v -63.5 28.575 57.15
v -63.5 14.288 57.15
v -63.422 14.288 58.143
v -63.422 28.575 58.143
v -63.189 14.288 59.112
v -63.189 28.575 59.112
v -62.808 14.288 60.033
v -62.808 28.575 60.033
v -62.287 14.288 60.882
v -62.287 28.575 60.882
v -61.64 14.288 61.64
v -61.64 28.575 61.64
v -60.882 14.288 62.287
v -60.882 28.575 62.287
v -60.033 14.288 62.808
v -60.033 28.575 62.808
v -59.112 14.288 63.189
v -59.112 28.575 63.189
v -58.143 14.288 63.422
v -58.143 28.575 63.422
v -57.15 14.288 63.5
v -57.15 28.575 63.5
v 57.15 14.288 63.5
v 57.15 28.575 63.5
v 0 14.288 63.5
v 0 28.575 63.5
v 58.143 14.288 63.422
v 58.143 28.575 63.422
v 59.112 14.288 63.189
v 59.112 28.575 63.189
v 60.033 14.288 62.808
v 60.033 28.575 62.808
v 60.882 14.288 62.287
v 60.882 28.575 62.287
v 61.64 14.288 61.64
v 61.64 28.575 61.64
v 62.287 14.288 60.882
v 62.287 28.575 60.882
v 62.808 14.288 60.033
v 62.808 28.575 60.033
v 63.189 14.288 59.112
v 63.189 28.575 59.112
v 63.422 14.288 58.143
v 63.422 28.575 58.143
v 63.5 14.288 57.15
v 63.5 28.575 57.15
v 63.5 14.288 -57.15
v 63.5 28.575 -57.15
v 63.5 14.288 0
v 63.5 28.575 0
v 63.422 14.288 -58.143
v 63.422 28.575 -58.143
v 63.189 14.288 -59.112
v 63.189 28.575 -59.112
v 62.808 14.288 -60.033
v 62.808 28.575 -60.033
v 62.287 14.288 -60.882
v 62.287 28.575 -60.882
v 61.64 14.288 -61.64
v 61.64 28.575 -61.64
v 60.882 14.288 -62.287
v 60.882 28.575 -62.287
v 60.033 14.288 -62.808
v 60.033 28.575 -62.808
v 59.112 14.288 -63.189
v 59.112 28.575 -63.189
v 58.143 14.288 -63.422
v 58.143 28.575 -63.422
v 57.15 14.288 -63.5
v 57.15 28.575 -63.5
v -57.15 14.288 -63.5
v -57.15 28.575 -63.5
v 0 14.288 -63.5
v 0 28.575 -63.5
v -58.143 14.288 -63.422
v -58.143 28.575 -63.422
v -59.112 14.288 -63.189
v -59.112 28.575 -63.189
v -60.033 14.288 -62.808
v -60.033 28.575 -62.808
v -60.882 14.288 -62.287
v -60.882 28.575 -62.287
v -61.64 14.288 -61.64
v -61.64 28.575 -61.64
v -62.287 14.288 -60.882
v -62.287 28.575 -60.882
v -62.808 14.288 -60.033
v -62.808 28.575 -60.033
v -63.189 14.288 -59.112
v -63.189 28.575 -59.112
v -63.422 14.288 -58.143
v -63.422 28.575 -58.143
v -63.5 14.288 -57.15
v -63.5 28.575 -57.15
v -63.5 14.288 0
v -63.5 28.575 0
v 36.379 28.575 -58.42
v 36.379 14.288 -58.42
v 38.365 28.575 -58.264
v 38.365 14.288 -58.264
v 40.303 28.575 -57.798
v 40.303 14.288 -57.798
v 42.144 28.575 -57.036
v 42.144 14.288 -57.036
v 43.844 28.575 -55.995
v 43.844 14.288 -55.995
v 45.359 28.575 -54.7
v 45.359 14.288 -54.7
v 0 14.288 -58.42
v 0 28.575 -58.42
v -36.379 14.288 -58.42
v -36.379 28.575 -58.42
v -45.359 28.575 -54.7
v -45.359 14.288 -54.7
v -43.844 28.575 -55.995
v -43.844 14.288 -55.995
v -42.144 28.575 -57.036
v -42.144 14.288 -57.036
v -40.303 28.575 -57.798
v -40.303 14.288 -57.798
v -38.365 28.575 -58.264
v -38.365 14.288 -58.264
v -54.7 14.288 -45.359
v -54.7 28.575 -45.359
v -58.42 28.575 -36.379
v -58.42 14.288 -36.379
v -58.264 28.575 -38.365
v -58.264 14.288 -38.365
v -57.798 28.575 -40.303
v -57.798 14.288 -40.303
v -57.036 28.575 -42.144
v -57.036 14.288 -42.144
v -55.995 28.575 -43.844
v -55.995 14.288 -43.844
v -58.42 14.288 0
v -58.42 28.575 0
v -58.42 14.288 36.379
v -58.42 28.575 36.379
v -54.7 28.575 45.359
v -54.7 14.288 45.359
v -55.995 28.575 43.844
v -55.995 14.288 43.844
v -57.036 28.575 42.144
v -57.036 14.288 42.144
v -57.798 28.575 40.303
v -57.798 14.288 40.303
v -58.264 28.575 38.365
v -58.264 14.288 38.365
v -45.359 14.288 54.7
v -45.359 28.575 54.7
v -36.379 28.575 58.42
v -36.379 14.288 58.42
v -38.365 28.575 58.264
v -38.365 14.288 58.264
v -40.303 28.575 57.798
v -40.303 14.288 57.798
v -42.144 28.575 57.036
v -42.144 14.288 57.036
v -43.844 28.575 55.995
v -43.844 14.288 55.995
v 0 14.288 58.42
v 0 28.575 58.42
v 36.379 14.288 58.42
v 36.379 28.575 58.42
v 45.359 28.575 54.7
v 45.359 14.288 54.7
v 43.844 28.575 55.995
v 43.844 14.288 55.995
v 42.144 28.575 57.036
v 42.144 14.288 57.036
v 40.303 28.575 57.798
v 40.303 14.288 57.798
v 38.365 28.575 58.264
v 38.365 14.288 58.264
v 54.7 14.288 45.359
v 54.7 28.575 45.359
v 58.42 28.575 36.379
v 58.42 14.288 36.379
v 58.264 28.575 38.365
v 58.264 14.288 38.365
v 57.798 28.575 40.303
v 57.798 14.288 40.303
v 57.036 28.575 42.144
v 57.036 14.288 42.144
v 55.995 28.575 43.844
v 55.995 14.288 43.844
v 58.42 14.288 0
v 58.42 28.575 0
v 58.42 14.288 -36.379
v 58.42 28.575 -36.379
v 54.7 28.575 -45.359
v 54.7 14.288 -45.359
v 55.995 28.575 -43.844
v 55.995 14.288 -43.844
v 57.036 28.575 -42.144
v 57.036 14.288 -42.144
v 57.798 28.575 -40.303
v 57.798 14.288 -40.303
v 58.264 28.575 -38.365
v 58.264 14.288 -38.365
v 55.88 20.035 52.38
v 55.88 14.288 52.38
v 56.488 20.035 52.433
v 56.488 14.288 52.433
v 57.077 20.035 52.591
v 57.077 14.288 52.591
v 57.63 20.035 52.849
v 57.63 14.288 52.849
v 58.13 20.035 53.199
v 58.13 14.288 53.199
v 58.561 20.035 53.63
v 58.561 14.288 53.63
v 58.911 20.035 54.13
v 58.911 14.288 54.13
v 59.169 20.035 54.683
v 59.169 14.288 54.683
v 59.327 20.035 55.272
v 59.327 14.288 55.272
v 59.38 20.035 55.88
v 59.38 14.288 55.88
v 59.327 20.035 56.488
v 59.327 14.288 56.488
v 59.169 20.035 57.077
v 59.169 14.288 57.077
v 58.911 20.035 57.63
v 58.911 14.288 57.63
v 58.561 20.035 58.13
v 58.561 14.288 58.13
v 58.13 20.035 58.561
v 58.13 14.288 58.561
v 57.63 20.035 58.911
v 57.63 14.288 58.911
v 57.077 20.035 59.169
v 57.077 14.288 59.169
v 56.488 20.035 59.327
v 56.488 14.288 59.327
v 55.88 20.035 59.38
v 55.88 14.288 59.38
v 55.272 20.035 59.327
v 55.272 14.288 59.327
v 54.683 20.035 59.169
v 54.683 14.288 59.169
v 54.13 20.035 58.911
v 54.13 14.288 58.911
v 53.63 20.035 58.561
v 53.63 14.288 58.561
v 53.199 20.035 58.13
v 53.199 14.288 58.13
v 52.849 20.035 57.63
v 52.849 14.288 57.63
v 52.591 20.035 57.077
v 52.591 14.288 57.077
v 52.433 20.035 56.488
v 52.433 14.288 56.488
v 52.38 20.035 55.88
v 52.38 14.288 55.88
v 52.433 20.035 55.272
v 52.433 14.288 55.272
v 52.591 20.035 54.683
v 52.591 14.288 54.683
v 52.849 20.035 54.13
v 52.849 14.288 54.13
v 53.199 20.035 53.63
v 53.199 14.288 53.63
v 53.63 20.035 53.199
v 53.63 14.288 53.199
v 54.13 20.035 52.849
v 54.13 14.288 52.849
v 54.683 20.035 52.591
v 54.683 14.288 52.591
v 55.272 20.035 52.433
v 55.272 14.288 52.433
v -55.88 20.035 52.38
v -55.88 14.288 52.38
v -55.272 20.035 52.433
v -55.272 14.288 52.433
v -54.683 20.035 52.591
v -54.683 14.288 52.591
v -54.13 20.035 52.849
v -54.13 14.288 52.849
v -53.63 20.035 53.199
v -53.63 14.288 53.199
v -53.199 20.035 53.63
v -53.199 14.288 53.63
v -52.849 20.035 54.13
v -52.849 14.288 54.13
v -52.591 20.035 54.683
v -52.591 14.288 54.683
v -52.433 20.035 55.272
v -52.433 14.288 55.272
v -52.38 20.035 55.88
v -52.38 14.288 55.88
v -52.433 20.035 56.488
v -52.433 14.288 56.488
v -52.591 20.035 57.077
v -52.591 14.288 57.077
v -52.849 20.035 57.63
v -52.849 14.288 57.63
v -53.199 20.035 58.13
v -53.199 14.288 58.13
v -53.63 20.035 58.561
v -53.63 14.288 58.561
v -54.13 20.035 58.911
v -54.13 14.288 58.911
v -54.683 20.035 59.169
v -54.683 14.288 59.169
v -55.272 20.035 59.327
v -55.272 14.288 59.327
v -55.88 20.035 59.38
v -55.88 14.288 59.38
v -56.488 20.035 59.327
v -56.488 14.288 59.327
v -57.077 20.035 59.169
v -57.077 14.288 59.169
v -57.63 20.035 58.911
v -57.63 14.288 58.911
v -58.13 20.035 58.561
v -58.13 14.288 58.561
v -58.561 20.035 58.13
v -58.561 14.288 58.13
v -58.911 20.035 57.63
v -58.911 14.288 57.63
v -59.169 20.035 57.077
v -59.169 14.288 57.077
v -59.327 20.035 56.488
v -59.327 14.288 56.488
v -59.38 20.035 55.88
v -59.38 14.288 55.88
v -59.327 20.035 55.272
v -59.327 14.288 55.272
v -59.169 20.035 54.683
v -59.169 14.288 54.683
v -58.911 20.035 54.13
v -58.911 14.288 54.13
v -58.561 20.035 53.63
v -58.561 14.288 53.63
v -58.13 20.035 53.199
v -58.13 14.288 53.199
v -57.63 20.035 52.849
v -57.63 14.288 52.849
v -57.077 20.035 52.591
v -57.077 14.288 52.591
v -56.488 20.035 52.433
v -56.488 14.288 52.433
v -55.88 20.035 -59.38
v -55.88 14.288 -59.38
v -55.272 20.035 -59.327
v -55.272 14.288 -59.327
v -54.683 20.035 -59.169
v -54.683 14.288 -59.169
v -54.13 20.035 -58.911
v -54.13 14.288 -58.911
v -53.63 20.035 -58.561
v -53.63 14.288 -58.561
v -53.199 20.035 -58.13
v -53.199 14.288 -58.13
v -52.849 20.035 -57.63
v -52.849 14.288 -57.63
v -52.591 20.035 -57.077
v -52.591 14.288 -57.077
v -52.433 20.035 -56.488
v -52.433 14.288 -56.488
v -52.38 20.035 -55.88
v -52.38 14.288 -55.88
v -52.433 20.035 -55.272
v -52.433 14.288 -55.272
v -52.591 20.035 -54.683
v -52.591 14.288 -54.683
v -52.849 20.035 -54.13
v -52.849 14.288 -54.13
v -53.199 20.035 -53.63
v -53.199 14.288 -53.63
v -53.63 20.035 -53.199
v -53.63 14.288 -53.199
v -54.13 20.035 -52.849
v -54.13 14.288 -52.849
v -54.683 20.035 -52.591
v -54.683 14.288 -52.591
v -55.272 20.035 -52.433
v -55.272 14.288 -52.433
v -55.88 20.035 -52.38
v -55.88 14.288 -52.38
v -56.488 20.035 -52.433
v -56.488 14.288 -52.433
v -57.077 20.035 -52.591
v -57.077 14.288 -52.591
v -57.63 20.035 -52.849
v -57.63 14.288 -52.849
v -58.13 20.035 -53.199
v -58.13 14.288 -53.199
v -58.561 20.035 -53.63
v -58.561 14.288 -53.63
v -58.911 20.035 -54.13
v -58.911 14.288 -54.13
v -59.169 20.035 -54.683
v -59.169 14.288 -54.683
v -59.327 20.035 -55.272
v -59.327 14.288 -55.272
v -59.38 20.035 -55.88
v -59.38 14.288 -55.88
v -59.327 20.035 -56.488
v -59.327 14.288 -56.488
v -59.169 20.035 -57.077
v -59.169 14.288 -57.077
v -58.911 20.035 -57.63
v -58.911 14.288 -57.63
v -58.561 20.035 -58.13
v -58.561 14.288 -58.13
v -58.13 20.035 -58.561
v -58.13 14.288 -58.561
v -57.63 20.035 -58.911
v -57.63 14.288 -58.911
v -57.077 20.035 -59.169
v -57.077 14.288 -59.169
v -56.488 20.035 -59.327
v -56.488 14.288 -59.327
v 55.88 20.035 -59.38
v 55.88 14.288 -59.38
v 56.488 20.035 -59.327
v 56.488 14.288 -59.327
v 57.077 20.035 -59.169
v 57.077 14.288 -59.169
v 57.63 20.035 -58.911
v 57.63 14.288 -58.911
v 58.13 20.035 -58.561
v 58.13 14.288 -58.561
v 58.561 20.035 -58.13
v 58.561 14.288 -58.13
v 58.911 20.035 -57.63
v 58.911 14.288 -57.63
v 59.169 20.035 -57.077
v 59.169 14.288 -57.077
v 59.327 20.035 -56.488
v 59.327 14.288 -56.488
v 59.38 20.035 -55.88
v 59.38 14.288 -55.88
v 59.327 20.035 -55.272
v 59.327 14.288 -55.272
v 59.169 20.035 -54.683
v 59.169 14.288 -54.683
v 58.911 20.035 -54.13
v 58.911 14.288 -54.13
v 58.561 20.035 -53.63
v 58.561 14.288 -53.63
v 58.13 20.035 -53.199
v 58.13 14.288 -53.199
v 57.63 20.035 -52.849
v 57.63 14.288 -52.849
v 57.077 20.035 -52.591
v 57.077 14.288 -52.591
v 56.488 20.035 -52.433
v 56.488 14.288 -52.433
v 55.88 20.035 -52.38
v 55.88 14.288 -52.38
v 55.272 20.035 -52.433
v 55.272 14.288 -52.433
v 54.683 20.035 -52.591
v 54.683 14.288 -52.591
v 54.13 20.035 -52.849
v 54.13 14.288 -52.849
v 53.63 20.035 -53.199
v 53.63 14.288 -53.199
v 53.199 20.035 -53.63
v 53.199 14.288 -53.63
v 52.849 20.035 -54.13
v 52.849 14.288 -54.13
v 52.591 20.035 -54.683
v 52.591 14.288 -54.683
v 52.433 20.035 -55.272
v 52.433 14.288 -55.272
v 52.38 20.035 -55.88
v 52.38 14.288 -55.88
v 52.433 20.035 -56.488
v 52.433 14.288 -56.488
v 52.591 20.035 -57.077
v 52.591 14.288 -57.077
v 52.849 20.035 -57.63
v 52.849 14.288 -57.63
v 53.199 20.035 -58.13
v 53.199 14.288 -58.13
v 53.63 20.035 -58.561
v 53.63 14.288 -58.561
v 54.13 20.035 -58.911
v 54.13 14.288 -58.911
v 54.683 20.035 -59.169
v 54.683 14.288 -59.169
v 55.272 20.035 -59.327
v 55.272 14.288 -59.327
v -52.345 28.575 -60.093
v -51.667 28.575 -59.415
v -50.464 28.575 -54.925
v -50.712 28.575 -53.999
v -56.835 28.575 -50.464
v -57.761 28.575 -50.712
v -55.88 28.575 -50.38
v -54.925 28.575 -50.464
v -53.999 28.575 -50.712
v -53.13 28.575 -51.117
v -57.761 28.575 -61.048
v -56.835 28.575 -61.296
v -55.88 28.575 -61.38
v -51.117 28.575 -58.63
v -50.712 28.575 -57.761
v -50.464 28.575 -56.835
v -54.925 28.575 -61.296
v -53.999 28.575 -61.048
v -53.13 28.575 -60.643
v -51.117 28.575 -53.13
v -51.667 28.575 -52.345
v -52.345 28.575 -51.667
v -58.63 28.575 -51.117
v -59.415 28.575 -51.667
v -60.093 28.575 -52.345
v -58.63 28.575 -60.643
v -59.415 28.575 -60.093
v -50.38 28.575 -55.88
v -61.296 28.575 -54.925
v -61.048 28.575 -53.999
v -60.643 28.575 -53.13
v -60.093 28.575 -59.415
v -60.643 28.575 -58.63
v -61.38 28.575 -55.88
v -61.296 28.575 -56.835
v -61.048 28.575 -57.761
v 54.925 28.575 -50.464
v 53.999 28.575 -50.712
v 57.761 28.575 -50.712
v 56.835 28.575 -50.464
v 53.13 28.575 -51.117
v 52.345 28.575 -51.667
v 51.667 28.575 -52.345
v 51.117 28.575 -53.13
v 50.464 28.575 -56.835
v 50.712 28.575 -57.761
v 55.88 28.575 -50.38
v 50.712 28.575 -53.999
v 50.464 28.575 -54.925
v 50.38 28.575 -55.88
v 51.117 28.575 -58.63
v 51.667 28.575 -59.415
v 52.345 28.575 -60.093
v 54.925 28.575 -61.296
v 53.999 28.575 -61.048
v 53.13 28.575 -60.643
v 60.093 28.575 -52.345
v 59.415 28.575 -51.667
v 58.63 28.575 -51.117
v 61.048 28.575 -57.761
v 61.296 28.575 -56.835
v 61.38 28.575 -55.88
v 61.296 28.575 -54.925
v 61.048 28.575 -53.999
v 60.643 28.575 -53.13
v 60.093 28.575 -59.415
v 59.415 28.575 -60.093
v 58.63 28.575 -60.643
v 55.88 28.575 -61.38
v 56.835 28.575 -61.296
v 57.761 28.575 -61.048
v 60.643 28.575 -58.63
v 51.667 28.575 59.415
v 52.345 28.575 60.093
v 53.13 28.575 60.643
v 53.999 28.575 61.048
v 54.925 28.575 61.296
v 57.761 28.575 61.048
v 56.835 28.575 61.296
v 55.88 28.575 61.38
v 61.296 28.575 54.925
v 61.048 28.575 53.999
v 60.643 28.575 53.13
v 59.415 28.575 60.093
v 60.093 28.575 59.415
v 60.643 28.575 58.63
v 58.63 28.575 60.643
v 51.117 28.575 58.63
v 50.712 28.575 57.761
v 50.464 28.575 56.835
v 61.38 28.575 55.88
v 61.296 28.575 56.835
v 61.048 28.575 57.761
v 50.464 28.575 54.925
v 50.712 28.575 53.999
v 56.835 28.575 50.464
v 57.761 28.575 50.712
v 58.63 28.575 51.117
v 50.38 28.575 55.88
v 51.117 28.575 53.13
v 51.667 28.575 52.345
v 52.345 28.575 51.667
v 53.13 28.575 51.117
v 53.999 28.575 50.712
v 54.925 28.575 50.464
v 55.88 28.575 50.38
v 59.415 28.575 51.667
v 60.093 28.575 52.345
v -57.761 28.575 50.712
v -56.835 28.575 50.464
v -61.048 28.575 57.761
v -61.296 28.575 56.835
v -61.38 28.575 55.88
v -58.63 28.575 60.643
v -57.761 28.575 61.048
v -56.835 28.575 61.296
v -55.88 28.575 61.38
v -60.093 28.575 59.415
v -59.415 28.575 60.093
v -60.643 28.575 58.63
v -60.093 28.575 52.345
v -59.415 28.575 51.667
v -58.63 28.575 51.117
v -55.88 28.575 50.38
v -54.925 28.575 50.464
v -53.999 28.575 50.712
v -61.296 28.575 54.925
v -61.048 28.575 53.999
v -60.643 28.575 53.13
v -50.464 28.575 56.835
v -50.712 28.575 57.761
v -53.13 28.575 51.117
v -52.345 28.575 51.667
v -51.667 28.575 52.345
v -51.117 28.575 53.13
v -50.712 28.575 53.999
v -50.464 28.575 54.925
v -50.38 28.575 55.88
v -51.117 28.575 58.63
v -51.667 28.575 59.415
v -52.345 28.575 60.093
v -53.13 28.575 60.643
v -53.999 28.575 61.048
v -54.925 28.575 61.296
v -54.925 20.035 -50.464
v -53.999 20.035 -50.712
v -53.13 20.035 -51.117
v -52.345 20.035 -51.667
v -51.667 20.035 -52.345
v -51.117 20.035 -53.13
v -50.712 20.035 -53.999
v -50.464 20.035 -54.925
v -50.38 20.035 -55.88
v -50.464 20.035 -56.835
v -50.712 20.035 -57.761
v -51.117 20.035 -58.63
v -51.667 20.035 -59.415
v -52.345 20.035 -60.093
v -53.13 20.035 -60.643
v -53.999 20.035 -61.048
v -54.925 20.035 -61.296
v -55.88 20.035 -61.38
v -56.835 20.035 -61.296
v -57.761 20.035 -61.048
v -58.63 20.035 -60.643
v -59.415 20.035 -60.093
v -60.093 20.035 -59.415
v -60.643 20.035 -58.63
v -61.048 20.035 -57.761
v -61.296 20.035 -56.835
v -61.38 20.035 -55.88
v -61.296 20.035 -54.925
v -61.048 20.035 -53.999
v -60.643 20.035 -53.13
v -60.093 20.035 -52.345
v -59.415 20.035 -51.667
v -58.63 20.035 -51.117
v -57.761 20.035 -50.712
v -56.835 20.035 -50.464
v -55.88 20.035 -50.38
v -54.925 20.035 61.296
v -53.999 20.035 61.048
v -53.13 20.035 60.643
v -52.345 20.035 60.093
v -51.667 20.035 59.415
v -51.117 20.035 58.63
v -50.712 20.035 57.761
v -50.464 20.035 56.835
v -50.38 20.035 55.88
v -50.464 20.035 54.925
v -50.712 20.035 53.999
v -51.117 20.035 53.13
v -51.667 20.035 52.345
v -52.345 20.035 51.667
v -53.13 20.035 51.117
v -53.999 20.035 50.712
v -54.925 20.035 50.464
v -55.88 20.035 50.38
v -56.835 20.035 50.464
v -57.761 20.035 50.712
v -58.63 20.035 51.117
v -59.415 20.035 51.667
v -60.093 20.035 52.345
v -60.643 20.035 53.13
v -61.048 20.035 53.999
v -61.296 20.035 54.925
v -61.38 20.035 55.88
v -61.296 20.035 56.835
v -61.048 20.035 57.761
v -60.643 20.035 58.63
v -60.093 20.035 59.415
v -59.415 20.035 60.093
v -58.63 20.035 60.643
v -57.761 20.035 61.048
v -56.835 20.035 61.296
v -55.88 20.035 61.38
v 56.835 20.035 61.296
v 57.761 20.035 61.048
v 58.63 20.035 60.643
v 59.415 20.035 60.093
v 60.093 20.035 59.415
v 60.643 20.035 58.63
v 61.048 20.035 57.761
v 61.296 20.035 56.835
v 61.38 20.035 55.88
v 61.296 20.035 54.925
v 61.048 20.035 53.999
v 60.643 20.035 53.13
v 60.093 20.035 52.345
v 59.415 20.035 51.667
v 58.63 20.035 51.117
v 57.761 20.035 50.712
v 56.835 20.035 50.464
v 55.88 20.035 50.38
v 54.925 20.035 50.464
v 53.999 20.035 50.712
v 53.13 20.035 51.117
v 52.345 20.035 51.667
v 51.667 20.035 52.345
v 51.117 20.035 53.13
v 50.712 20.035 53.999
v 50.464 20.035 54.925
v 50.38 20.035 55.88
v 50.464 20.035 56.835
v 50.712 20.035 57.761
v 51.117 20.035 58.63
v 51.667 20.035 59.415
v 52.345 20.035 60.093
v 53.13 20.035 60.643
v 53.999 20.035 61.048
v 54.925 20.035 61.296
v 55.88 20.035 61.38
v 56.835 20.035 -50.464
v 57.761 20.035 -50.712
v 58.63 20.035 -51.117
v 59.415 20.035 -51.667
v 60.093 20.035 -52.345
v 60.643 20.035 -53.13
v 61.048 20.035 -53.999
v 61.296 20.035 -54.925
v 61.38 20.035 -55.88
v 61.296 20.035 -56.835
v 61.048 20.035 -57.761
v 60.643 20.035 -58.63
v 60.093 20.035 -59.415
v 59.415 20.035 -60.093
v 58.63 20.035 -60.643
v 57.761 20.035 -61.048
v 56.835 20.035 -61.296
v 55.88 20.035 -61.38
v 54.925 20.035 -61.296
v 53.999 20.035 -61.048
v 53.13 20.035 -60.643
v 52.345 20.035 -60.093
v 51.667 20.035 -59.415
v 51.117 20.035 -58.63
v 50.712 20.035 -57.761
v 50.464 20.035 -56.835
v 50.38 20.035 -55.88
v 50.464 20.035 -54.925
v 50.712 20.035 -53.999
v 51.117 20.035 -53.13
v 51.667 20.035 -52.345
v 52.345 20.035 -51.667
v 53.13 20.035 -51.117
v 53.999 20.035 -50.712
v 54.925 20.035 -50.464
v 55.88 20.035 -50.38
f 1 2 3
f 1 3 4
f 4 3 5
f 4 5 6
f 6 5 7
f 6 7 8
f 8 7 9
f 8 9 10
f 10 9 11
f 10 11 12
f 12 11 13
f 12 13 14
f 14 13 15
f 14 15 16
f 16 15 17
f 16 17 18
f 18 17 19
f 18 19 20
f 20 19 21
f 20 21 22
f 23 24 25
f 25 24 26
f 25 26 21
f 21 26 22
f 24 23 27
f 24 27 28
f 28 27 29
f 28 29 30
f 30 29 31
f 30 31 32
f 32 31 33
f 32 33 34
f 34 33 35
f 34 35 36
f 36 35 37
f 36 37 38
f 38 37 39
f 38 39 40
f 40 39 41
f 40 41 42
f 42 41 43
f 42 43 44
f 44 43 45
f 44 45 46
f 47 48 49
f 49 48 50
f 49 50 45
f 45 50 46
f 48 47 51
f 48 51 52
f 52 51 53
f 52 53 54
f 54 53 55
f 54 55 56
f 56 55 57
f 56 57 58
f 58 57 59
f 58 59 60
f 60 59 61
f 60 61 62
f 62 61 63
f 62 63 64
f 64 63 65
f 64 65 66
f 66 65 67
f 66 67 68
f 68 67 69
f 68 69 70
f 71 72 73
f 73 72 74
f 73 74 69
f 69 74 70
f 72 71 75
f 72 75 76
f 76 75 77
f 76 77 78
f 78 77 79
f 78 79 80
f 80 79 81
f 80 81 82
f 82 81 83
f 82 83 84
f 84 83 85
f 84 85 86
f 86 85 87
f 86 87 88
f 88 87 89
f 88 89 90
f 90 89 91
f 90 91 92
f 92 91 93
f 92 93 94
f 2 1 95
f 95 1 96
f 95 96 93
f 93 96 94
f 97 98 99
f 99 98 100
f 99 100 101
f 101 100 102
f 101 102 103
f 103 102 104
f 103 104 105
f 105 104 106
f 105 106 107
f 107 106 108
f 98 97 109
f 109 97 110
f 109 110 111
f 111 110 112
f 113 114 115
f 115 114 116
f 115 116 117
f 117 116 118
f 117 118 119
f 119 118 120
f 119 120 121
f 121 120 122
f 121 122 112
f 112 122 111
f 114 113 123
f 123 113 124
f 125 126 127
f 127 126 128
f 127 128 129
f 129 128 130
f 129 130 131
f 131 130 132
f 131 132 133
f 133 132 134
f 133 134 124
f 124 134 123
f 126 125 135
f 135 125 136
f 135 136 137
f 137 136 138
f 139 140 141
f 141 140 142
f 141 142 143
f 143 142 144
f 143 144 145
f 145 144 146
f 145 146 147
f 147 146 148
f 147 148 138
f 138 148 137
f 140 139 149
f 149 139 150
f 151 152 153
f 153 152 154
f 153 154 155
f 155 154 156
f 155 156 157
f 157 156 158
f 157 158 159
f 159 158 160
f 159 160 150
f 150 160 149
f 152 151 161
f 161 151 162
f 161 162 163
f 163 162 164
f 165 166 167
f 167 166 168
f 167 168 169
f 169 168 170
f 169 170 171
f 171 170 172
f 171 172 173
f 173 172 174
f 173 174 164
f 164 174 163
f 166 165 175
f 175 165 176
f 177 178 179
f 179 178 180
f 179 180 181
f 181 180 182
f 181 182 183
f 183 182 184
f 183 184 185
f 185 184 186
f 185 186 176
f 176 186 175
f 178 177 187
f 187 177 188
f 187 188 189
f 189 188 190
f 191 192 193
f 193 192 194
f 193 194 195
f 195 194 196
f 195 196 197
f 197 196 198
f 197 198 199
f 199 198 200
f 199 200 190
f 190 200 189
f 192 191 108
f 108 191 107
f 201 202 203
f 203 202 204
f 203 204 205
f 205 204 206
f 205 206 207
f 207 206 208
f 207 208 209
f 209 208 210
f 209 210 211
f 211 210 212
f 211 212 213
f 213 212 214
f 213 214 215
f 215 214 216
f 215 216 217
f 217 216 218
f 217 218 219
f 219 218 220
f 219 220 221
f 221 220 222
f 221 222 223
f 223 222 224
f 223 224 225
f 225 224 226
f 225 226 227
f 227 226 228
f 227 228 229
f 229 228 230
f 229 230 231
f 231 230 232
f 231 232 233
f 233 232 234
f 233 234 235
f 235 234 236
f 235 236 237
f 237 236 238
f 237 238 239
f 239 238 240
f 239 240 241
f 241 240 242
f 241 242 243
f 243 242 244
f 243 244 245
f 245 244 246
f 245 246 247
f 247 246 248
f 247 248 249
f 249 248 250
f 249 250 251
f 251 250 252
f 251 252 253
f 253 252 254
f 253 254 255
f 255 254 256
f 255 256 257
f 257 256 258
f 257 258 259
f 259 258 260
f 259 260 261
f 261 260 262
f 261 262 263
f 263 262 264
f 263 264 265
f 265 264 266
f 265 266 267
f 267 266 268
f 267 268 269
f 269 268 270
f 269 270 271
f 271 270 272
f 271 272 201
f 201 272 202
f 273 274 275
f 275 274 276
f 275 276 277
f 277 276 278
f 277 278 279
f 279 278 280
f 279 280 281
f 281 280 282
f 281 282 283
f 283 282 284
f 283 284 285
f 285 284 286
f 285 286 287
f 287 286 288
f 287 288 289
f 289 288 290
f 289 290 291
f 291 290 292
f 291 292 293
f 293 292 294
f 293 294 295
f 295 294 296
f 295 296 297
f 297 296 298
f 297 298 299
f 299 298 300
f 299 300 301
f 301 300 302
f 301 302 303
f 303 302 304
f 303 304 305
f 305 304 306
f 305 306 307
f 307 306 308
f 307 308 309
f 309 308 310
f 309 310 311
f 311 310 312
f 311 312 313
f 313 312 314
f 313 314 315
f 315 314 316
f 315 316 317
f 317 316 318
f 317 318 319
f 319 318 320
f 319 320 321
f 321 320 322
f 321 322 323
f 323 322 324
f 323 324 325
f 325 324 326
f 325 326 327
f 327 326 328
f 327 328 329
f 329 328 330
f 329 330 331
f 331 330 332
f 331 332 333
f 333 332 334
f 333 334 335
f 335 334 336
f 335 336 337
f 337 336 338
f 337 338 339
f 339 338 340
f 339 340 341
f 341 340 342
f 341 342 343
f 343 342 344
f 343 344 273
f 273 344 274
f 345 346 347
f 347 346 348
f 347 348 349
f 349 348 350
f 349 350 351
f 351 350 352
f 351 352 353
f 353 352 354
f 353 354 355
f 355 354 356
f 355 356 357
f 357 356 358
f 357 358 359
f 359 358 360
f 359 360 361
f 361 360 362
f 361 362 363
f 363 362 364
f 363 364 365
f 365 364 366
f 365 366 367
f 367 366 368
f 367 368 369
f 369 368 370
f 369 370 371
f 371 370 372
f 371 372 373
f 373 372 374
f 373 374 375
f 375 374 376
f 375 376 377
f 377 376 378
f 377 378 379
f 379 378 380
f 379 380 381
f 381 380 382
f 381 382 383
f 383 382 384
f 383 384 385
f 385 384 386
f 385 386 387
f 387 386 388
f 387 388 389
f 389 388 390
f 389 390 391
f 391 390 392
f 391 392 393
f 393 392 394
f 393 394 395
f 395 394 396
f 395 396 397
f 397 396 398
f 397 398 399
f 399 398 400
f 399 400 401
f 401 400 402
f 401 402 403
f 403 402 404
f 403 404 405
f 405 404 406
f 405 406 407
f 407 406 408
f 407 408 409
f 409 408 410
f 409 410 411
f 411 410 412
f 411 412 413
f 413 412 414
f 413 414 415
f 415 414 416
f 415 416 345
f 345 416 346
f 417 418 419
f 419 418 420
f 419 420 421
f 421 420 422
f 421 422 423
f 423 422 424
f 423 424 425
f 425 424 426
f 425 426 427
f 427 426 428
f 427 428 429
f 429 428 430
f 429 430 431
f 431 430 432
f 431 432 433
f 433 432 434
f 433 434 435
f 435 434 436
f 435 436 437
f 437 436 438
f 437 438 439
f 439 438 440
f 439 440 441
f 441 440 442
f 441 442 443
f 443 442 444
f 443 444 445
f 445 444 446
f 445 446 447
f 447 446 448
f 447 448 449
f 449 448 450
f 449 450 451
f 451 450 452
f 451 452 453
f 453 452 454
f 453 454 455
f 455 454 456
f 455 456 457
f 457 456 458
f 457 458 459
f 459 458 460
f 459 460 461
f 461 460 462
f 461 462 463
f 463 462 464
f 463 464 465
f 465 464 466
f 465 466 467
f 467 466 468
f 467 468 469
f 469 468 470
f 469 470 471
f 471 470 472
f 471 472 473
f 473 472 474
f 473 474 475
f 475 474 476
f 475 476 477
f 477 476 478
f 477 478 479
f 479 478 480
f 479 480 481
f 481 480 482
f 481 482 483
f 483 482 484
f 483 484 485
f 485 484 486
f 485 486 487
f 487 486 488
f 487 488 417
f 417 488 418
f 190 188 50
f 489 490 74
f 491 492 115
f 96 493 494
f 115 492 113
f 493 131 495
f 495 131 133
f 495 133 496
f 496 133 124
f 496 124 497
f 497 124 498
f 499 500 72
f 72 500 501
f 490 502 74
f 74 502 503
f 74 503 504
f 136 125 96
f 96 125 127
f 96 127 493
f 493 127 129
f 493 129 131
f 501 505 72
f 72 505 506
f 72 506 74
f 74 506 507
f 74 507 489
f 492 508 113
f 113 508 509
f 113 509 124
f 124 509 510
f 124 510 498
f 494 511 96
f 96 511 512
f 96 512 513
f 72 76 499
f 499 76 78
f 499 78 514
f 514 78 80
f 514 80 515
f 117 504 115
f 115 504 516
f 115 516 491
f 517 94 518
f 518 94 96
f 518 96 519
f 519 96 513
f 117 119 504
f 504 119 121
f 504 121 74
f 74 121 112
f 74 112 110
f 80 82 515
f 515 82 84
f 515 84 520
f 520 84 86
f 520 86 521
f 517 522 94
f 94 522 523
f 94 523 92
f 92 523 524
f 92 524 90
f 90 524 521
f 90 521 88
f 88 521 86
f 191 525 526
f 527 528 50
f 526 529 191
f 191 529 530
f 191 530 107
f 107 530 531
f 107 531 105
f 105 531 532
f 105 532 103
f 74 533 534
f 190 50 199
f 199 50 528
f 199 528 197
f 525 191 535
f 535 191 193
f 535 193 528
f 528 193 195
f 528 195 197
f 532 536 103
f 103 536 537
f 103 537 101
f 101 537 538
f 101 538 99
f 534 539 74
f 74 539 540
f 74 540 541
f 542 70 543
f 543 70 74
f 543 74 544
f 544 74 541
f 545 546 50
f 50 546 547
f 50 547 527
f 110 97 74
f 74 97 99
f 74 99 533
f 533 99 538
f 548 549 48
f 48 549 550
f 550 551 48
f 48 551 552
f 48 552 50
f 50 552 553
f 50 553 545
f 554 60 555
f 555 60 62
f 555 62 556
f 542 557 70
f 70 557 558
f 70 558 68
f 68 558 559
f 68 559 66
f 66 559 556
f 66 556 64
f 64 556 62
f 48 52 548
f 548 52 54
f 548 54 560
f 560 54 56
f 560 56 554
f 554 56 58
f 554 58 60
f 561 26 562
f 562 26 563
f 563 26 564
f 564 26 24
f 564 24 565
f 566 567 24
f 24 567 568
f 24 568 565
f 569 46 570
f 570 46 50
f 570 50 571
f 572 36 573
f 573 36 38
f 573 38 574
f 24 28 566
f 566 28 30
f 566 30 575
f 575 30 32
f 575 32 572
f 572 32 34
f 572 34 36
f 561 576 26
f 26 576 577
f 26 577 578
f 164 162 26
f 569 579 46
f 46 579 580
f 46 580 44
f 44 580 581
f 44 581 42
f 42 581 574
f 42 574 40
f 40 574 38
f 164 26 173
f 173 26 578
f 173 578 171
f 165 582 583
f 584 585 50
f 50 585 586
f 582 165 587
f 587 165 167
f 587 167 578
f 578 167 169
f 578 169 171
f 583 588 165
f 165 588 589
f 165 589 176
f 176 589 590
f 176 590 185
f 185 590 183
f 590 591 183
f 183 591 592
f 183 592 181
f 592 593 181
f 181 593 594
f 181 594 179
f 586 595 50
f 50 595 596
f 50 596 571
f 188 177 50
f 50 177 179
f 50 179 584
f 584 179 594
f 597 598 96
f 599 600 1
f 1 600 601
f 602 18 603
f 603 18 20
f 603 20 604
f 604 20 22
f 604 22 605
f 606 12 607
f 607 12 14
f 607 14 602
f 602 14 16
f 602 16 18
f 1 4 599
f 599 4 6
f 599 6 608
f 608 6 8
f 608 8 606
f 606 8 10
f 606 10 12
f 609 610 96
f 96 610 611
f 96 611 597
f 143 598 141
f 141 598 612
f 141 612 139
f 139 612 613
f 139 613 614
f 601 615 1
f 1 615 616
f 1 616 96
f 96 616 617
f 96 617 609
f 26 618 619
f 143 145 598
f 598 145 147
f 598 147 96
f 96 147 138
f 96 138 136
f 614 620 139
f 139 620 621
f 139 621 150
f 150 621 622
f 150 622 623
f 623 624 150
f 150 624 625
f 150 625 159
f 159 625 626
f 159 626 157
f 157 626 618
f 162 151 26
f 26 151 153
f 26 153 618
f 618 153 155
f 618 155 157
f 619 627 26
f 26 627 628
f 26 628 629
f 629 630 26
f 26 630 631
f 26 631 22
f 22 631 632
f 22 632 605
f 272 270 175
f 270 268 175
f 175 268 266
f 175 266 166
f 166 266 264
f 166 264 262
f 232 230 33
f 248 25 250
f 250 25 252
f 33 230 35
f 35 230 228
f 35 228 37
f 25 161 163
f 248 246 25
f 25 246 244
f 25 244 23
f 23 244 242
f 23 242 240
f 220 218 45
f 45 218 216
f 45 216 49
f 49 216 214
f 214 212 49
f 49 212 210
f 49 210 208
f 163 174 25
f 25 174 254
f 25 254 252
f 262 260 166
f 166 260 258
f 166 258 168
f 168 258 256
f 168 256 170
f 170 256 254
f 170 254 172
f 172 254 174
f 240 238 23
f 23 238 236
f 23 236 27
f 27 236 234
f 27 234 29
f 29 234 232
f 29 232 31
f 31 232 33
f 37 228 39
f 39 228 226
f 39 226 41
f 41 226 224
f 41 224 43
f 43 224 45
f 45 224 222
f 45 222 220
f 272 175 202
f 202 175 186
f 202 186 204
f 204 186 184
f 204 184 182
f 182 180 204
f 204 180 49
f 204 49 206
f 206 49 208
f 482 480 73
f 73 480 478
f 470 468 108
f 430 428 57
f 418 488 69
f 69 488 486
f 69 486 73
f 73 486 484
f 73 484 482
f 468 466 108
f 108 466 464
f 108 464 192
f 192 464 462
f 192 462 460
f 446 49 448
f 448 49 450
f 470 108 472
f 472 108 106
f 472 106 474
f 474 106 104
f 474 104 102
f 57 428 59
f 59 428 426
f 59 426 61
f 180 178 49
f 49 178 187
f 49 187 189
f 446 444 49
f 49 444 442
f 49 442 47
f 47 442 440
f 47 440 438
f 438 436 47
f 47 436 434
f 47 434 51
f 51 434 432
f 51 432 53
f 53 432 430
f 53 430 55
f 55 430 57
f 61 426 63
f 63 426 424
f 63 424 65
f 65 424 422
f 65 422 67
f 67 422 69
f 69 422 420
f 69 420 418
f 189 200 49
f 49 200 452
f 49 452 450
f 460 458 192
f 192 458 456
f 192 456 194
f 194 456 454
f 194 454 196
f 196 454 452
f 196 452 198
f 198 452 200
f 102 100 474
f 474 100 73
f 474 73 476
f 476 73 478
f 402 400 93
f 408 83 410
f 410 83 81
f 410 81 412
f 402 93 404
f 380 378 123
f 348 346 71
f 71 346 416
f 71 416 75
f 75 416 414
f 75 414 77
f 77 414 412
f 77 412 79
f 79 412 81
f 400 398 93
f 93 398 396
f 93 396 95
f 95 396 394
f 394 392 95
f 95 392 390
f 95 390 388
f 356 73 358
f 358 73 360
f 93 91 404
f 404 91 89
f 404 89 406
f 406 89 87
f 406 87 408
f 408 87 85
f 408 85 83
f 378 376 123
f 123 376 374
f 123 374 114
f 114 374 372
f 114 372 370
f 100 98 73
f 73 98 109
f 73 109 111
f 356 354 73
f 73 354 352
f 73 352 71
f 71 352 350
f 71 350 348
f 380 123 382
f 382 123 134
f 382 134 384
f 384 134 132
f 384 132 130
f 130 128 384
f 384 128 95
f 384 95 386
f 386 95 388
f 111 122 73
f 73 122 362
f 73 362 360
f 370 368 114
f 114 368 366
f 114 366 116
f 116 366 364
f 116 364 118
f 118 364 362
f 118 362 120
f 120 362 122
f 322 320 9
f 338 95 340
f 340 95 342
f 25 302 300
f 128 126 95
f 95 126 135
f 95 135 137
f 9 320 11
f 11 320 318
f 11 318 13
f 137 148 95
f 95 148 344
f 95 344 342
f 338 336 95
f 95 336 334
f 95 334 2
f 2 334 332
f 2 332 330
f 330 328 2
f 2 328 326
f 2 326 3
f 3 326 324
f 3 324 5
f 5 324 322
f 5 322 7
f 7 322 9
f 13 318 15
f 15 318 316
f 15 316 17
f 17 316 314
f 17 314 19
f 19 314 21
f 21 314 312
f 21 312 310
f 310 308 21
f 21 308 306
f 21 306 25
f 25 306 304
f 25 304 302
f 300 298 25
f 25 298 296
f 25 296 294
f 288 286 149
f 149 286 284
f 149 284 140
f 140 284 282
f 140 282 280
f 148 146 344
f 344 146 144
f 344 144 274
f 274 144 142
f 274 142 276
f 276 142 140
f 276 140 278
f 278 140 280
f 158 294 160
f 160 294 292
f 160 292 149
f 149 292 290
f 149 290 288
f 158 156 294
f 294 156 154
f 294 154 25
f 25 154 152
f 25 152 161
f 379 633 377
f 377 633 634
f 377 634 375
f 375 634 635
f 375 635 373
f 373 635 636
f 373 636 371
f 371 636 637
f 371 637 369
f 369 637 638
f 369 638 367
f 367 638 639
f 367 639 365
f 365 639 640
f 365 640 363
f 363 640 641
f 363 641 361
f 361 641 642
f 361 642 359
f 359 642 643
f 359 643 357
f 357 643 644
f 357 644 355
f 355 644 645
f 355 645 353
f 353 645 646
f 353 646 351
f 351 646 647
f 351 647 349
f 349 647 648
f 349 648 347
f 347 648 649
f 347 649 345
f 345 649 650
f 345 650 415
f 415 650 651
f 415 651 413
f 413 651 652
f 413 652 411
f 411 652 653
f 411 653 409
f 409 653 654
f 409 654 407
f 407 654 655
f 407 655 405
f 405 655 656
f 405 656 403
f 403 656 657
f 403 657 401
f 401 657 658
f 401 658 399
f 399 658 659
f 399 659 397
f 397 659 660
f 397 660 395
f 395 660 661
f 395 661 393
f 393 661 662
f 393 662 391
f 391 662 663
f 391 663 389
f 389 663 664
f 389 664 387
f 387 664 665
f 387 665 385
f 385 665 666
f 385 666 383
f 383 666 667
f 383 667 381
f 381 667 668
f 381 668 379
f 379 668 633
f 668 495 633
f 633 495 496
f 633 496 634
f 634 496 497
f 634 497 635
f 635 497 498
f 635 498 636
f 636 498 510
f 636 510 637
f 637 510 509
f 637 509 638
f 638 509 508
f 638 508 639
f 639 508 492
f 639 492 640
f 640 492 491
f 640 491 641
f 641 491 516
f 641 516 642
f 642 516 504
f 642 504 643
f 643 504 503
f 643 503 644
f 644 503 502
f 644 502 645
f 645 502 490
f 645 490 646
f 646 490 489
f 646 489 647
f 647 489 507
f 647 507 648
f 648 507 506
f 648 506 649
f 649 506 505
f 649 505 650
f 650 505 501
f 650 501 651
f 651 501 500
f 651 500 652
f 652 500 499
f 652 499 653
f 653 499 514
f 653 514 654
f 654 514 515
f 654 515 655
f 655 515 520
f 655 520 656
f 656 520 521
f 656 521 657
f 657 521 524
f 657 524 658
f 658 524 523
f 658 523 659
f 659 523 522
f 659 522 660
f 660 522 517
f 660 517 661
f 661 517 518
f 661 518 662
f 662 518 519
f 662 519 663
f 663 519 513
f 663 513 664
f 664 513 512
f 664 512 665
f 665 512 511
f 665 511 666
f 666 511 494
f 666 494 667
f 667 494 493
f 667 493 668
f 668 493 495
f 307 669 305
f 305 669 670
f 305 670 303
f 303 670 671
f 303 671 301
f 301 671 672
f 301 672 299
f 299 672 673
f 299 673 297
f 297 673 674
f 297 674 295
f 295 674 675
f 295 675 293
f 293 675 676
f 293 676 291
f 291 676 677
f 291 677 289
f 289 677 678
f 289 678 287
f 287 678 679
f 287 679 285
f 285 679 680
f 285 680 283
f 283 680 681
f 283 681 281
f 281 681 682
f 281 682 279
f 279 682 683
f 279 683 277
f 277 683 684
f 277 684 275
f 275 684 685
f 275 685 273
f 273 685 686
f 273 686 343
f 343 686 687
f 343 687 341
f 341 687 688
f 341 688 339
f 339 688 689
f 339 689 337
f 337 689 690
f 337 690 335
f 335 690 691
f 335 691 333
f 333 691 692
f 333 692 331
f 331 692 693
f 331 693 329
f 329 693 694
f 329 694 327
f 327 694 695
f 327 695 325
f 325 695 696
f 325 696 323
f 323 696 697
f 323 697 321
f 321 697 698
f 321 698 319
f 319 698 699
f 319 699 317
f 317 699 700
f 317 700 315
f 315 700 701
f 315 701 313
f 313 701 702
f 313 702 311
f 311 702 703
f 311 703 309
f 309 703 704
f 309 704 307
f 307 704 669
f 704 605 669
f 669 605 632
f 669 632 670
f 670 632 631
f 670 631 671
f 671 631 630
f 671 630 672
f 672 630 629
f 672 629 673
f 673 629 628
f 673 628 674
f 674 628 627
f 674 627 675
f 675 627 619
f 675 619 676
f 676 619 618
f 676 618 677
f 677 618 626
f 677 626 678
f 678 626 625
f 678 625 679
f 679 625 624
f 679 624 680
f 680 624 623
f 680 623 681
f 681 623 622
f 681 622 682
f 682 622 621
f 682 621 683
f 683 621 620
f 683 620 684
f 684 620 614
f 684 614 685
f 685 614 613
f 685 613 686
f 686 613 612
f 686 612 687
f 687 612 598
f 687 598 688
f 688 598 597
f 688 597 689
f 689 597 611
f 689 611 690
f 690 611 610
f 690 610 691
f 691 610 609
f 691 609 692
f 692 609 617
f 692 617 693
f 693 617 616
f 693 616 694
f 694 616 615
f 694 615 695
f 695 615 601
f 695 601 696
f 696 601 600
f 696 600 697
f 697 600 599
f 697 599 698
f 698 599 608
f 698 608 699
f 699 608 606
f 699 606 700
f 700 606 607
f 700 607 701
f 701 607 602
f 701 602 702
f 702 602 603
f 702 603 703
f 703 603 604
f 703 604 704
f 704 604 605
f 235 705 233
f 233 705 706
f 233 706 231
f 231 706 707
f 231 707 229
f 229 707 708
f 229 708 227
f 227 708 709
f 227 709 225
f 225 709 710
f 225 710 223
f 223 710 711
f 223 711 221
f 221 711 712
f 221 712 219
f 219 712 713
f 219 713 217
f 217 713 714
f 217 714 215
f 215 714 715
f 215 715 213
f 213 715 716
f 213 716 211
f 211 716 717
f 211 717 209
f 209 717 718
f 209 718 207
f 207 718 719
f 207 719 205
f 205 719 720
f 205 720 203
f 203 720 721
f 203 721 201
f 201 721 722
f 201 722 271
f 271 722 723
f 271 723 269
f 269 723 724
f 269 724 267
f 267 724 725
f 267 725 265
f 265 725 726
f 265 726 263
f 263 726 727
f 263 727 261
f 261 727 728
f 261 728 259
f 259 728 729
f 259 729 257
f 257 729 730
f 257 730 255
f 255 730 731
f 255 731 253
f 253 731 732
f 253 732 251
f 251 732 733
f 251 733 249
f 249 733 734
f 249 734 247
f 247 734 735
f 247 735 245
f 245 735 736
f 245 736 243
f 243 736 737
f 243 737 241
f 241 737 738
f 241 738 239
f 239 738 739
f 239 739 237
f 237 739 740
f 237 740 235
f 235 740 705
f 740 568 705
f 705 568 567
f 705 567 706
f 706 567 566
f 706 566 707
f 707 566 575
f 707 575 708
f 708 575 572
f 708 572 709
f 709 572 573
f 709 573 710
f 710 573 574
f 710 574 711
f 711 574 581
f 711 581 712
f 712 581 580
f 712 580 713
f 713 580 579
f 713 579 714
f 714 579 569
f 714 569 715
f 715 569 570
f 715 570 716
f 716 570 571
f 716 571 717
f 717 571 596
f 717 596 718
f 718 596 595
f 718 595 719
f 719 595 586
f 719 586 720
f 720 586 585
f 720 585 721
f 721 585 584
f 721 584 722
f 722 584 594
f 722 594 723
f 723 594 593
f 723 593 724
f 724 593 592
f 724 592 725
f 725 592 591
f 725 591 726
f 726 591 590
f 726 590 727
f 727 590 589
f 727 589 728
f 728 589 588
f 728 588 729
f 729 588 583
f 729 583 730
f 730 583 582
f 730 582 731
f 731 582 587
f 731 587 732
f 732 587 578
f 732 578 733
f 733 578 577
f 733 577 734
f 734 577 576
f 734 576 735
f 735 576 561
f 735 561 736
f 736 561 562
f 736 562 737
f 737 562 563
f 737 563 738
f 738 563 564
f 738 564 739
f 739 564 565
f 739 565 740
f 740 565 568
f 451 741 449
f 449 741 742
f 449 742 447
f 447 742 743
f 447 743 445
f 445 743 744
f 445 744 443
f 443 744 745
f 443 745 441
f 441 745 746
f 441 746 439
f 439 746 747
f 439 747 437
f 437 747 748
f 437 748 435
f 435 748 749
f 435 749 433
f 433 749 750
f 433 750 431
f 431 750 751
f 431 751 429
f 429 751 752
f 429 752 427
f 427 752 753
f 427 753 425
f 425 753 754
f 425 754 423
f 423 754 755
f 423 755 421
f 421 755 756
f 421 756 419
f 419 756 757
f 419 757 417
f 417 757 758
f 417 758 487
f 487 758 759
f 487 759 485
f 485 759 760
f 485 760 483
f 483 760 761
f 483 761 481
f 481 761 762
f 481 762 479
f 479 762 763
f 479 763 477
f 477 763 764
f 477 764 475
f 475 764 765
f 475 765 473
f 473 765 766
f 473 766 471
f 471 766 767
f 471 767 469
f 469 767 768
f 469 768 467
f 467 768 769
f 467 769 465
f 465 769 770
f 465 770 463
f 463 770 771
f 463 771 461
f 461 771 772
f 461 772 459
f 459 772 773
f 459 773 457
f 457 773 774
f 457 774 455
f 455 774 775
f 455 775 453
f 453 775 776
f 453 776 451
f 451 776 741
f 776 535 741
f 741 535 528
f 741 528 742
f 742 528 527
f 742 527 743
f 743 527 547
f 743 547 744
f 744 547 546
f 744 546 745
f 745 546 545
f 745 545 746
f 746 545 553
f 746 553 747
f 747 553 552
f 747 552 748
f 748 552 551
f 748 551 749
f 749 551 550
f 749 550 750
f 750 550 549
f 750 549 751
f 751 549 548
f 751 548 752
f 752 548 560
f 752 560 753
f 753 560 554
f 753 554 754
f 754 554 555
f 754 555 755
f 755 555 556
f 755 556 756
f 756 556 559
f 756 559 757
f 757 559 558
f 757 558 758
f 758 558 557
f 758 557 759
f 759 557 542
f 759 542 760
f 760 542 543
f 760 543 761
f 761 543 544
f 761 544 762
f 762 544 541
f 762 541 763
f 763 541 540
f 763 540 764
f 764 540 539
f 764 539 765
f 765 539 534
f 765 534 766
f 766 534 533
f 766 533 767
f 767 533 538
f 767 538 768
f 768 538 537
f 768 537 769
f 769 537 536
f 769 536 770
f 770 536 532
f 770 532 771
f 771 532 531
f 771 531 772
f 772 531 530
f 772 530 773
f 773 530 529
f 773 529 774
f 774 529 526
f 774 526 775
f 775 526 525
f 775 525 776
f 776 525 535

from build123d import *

# Parameters (mm, degrees)
SKETCH1_R                      = 44.45
SKETCH1_R_2                    = 3.25
BOSS_EXTRUDE1_DEPTH            = 3.175
BOSS_EXTRUDE2_DEPTH            = 25.4
CBORE_FOR_M6_SHCS2_D           = 7
CBORE_FOR_M6_SHCS2_CBORE_D     = 11
CBORE_FOR_M6_SHCS2_CBORE_DEPTH = 6
SKETCH10_W                     = 206.275362682
SKETCH10_H                     = 234.398565581
CUT_EXTRUDE1_DEPTH             = 15.2875
CBORE_FOR_M6_SHCS3_D           = 7
CBORE_FOR_M6_SHCS3_CBORE_D     = 11
CBORE_FOR_M6_SHCS3_CBORE_DEPTH = 8.54


with BuildPart() as part:
    # Sketch1 → Boss-Extrude1 (new body)
    with BuildSketch(Plane(origin=(0, 0, 0), x_dir=(1, 0, 0), z_dir=(0, 1, 0))):
        with BuildLine():
            Line((-57.15, 63.5), (57.15, 63.5))
            ThreePointArc((57.15, 63.5), (61.640128061, 61.640128061), (63.5, 57.15))
            Line((63.5, 57.15), (63.5, -57.15))
            ThreePointArc((63.5, -57.15), (61.640128061, -61.640128061), (57.15, -63.5))
            Line((57.15, -63.5), (-57.15, -63.5))
            ThreePointArc((-57.15, -63.5), (-61.640128061, -61.640128061), (-63.5, -57.15))
            Line((-63.5, -57.15), (-63.5, 57.15))
            ThreePointArc((-63.5, 57.15), (-61.640128061, 61.640128061), (-57.15, 63.5))
        make_face()
        Circle(SKETCH1_R, mode=Mode.SUBTRACT)
        with Locations((-57.15, 53.975)):
            Circle(SKETCH1_R_2, mode=Mode.SUBTRACT)
        with Locations((57.15, 53.975)):
            Circle(SKETCH1_R_2, mode=Mode.SUBTRACT)
        with Locations((57.15, -53.975)):
            Circle(SKETCH1_R_2, mode=Mode.SUBTRACT)
        with Locations((-57.15, -53.975)):
            Circle(SKETCH1_R_2, mode=Mode.SUBTRACT)
    extrude(amount=BOSS_EXTRUDE1_DEPTH)

    # Sketch3 → Boss-Extrude2 (add)
    with BuildSketch(Plane(origin=(0, 3.175, 0), x_dir=(1, 0, 0), z_dir=(0, 1, 0))):
        with BuildLine():
            Line((-57.15, -63.5), (57.15, -63.5))
            ThreePointArc((57.15, -63.5), (61.640128061, -61.640128061), (63.5, -57.15))
            Line((63.5, -57.15), (63.5, 57.15))
            ThreePointArc((63.5, 57.15), (61.640128061, 61.640128061), (57.15, 63.5))
            Line((57.15, 63.5), (-57.15, 63.5))
            ThreePointArc((-57.15, 63.5), (-61.640128061, 61.640128061), (-63.5, 57.15))
            Line((-63.5, 57.15), (-63.5, -57.15))
            ThreePointArc((-63.5, -57.15), (-61.640128061, -61.640128061), (-57.15, -63.5))
        make_face()
        with BuildLine():
            Line((-54.700256121, 45.358975516), (-45.358975516, 54.700256121))
            ThreePointArc((-45.358975516, 54.700256121), (-41.238798986, 57.453270063), (-36.378719395, 58.42))
            Line((-36.378719395, 58.42), (36.378719395, 58.42))
            ThreePointArc((36.378719395, 58.42), (41.238798986, 57.453270063), (45.358975516, 54.700256121))
            Line((45.358975516, 54.700256121), (54.700256121, 45.358975516))
            ThreePointArc((54.700256121, 45.358975516), (57.453270063, 41.238798986), (58.42, 36.378719395))
            Line((58.42, 36.378719395), (58.42, -36.378719395))
            ThreePointArc((58.42, -36.378719395), (57.453270063, -41.238798986), (54.700256121, -45.358975516))
            Line((54.700256121, -45.358975516), (45.358975516, -54.700256121))
            ThreePointArc((45.358975516, -54.700256121), (41.238798986, -57.453270063), (36.378719395, -58.42))
            Line((36.378719395, -58.42), (-36.378719395, -58.42))
            ThreePointArc((-36.378719395, -58.42), (-41.238798986, -57.453270063), (-45.358975516, -54.700256121))
            Line((-45.358975516, -54.700256121), (-54.700256121, -45.358975516))
            ThreePointArc((-54.700256121, -45.358975516), (-57.453270063, -41.238798986), (-58.42, -36.378719395))
            Line((-58.42, -36.378719395), (-58.42, 36.378719395))
            ThreePointArc((-58.42, 36.378719395), (-57.453270063, 41.238798986), (-54.700256121, 45.358975516))
        make_face(mode=Mode.SUBTRACT)
    extrude(amount=BOSS_EXTRUDE2_DEPTH)

    # CBORE for M6 SHCS2 (through all)
    with Locations(Plane(origin=(0, 0, 0), x_dir=(-1, 0, 0), z_dir=(0, -1, 0))):
        with Locations((-55.88, 55.88), (55.88, 55.88), (55.88, -55.88), (-55.88, -55.88)):
            CounterBoreHole(CBORE_FOR_M6_SHCS2_D / 2, CBORE_FOR_M6_SHCS2_CBORE_D / 2, CBORE_FOR_M6_SHCS2_CBORE_DEPTH)

    # Sketch10 → Cut-Extrude1 (cut, through all)
    with BuildSketch(Plane(origin=(0, 14.2875, 0), x_dir=(-1, 0, 0), z_dir=(0, -1, 0))):
        with Locations((4.587579463, 2.84706708)):
            Rectangle(SKETCH10_W, SKETCH10_H)
    extrude(amount=CUT_EXTRUDE1_DEPTH, mode=Mode.SUBTRACT)

    # CBORE for M6 SHCS3 (through all)
    with Locations(Plane(origin=(0, 28.575, 0), x_dir=(1, 0, 0), z_dir=(0, 1, 0))):
        with Locations((55.88, 55.88), (55.88, -55.88), (-55.88, -55.88), (-55.88, 55.88)):
            CounterBoreHole(CBORE_FOR_M6_SHCS3_D / 2, CBORE_FOR_M6_SHCS3_CBORE_D / 2, CBORE_FOR_M6_SHCS3_CBORE_DEPTH)


solid = part.part
